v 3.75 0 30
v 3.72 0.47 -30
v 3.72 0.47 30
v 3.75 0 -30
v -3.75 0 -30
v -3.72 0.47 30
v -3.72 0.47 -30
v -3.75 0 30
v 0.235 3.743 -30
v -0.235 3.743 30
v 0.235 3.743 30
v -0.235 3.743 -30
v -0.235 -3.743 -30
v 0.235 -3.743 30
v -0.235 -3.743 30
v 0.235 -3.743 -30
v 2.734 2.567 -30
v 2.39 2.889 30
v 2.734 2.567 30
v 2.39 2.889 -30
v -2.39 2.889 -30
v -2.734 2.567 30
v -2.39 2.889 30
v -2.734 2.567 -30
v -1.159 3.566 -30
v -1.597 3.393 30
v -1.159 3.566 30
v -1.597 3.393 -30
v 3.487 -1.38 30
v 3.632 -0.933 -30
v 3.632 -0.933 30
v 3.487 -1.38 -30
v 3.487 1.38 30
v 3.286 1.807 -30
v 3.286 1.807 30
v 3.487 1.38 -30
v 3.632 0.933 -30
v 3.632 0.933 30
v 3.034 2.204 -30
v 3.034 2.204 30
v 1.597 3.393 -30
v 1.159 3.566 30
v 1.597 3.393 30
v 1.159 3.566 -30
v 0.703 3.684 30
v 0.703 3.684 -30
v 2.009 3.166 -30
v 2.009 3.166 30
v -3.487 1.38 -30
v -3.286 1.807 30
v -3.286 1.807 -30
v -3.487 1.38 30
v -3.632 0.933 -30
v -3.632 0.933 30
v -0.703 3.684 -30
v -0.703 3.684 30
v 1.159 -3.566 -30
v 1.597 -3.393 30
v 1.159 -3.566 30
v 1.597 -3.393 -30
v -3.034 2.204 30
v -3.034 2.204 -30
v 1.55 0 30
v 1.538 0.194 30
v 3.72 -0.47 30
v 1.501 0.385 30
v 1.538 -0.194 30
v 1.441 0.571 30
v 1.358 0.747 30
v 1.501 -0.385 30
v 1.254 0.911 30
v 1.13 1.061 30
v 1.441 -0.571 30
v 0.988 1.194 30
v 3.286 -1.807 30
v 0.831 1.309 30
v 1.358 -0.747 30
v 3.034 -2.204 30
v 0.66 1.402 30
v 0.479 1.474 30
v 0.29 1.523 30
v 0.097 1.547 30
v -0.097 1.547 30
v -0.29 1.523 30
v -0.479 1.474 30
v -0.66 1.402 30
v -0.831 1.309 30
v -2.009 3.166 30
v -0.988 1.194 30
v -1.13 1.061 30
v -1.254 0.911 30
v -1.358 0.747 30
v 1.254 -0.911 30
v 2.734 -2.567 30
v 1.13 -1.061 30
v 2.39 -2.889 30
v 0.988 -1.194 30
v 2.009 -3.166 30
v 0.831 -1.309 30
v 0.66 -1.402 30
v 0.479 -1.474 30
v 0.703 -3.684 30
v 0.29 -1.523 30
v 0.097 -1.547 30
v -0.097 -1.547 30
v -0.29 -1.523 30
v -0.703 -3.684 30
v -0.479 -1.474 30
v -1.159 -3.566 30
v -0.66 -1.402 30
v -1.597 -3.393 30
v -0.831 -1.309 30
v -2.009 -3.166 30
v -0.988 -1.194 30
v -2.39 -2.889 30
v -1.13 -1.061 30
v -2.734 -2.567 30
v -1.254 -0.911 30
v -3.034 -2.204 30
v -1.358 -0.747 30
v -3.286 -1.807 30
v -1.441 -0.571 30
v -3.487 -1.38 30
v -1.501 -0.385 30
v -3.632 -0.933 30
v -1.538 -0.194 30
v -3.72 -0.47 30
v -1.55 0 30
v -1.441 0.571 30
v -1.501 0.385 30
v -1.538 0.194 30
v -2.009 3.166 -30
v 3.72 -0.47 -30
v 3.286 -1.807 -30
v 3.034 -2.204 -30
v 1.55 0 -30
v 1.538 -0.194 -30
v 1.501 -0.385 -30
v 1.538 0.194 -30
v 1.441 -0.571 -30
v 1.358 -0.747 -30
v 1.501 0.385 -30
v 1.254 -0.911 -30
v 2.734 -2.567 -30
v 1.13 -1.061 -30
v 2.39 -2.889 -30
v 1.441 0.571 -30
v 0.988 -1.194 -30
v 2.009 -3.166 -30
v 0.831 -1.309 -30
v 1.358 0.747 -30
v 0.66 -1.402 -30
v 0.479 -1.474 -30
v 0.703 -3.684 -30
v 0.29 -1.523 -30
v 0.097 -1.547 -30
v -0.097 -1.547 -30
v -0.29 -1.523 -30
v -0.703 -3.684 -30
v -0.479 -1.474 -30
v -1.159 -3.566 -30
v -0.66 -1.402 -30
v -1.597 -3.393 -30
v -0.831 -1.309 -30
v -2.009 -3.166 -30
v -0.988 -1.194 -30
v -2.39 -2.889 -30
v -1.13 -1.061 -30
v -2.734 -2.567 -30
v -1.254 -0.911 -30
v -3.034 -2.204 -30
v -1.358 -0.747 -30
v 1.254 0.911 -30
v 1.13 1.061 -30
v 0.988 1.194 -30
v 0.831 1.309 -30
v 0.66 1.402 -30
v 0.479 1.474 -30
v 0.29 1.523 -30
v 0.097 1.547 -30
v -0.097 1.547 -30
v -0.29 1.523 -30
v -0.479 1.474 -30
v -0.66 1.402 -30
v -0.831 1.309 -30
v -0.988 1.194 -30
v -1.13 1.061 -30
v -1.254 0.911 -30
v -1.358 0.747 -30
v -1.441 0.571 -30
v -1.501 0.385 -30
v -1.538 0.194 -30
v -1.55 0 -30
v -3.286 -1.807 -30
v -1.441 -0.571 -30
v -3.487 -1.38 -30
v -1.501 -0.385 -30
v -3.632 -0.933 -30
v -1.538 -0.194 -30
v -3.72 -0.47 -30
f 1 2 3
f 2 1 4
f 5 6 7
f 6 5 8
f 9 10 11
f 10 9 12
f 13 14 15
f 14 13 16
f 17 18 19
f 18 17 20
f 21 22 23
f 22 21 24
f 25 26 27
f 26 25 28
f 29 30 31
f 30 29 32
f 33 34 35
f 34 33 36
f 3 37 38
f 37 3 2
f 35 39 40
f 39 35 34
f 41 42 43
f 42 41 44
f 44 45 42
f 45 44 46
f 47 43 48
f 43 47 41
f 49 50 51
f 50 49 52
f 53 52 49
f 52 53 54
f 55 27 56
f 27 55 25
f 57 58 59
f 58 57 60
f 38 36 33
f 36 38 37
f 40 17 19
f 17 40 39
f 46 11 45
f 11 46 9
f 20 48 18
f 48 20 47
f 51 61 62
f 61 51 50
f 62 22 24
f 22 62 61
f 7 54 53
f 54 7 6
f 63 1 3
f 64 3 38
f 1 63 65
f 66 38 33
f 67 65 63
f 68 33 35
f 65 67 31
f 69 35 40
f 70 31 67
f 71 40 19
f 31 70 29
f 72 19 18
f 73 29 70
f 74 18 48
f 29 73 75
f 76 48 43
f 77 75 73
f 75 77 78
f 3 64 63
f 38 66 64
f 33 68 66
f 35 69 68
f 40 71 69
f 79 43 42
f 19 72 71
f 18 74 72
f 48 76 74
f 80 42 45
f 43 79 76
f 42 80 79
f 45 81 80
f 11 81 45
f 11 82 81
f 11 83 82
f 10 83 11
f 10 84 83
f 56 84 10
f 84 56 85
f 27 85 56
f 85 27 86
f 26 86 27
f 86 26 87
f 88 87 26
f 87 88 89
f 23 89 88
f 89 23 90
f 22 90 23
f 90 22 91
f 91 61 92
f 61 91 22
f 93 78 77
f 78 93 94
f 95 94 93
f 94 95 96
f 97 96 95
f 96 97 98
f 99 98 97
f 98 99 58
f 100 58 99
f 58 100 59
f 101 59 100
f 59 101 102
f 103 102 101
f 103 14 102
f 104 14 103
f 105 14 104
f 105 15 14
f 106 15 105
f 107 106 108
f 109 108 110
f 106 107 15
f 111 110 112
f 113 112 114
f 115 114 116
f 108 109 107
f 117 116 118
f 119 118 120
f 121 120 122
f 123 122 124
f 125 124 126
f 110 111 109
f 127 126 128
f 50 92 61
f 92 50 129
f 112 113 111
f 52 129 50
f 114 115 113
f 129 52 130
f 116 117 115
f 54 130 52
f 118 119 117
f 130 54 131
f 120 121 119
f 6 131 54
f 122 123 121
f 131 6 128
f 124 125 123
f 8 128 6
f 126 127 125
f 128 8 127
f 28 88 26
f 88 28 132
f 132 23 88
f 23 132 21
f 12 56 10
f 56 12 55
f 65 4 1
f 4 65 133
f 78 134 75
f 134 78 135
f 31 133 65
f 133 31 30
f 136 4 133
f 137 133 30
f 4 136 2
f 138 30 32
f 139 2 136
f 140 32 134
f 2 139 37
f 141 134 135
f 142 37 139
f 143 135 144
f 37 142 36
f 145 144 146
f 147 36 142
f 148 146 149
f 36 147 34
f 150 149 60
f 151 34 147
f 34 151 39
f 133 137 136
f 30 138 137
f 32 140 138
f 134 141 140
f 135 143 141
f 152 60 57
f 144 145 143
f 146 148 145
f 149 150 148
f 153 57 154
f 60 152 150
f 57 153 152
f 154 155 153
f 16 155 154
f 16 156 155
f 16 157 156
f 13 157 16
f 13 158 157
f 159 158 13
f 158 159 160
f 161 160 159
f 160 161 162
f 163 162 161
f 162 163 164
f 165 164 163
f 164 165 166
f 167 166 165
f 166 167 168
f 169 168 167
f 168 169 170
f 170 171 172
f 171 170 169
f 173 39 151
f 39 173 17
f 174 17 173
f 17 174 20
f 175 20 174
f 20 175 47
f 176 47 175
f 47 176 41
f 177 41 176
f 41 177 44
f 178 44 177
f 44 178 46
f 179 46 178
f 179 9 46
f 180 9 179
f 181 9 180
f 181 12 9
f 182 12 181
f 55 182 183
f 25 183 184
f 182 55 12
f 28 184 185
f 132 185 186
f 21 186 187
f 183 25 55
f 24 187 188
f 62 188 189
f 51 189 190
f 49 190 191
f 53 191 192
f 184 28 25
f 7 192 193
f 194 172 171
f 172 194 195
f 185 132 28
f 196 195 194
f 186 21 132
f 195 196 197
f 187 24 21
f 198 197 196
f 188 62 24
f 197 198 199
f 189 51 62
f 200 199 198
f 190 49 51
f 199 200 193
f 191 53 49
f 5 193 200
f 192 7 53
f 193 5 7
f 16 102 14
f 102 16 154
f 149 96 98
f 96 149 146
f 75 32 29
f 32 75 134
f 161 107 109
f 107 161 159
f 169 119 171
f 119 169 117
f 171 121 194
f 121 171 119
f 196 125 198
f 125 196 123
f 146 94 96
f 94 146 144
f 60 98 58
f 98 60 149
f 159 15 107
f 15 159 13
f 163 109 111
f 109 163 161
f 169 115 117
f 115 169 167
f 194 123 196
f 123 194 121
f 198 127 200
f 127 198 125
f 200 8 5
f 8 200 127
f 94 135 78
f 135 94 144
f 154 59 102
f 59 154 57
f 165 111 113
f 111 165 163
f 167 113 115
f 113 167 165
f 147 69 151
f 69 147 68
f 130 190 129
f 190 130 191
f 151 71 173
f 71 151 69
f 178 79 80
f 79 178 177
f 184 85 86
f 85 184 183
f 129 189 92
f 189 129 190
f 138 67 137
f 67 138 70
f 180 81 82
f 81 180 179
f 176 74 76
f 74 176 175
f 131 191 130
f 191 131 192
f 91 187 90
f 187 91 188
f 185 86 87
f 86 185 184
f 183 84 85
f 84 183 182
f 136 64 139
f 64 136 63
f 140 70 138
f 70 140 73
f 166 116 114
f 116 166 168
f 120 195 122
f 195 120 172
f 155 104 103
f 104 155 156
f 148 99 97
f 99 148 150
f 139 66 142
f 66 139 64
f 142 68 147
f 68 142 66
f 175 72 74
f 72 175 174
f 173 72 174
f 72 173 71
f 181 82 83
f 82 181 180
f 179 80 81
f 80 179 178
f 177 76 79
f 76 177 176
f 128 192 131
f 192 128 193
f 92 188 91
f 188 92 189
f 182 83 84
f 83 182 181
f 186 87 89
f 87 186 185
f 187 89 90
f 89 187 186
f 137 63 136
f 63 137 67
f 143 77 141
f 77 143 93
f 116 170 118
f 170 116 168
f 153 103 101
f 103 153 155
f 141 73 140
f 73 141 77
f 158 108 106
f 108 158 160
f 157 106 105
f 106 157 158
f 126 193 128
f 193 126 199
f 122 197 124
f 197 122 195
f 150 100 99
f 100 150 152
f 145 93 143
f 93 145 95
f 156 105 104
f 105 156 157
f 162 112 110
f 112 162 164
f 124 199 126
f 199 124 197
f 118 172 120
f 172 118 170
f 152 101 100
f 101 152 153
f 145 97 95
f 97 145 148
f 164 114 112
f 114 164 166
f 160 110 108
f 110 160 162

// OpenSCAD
$fn = 50;


difference() {
	union() {
		translate(v = [0, 0, -30.0000000000]) {
			cylinder(h = 60, r = 3.7500000000);
		}
	}
	union() {
		translate(v = [0, 0, -100.0000000000]) {
			cylinder(h = 200, r = 1.5500000000);
		}
	}
}
